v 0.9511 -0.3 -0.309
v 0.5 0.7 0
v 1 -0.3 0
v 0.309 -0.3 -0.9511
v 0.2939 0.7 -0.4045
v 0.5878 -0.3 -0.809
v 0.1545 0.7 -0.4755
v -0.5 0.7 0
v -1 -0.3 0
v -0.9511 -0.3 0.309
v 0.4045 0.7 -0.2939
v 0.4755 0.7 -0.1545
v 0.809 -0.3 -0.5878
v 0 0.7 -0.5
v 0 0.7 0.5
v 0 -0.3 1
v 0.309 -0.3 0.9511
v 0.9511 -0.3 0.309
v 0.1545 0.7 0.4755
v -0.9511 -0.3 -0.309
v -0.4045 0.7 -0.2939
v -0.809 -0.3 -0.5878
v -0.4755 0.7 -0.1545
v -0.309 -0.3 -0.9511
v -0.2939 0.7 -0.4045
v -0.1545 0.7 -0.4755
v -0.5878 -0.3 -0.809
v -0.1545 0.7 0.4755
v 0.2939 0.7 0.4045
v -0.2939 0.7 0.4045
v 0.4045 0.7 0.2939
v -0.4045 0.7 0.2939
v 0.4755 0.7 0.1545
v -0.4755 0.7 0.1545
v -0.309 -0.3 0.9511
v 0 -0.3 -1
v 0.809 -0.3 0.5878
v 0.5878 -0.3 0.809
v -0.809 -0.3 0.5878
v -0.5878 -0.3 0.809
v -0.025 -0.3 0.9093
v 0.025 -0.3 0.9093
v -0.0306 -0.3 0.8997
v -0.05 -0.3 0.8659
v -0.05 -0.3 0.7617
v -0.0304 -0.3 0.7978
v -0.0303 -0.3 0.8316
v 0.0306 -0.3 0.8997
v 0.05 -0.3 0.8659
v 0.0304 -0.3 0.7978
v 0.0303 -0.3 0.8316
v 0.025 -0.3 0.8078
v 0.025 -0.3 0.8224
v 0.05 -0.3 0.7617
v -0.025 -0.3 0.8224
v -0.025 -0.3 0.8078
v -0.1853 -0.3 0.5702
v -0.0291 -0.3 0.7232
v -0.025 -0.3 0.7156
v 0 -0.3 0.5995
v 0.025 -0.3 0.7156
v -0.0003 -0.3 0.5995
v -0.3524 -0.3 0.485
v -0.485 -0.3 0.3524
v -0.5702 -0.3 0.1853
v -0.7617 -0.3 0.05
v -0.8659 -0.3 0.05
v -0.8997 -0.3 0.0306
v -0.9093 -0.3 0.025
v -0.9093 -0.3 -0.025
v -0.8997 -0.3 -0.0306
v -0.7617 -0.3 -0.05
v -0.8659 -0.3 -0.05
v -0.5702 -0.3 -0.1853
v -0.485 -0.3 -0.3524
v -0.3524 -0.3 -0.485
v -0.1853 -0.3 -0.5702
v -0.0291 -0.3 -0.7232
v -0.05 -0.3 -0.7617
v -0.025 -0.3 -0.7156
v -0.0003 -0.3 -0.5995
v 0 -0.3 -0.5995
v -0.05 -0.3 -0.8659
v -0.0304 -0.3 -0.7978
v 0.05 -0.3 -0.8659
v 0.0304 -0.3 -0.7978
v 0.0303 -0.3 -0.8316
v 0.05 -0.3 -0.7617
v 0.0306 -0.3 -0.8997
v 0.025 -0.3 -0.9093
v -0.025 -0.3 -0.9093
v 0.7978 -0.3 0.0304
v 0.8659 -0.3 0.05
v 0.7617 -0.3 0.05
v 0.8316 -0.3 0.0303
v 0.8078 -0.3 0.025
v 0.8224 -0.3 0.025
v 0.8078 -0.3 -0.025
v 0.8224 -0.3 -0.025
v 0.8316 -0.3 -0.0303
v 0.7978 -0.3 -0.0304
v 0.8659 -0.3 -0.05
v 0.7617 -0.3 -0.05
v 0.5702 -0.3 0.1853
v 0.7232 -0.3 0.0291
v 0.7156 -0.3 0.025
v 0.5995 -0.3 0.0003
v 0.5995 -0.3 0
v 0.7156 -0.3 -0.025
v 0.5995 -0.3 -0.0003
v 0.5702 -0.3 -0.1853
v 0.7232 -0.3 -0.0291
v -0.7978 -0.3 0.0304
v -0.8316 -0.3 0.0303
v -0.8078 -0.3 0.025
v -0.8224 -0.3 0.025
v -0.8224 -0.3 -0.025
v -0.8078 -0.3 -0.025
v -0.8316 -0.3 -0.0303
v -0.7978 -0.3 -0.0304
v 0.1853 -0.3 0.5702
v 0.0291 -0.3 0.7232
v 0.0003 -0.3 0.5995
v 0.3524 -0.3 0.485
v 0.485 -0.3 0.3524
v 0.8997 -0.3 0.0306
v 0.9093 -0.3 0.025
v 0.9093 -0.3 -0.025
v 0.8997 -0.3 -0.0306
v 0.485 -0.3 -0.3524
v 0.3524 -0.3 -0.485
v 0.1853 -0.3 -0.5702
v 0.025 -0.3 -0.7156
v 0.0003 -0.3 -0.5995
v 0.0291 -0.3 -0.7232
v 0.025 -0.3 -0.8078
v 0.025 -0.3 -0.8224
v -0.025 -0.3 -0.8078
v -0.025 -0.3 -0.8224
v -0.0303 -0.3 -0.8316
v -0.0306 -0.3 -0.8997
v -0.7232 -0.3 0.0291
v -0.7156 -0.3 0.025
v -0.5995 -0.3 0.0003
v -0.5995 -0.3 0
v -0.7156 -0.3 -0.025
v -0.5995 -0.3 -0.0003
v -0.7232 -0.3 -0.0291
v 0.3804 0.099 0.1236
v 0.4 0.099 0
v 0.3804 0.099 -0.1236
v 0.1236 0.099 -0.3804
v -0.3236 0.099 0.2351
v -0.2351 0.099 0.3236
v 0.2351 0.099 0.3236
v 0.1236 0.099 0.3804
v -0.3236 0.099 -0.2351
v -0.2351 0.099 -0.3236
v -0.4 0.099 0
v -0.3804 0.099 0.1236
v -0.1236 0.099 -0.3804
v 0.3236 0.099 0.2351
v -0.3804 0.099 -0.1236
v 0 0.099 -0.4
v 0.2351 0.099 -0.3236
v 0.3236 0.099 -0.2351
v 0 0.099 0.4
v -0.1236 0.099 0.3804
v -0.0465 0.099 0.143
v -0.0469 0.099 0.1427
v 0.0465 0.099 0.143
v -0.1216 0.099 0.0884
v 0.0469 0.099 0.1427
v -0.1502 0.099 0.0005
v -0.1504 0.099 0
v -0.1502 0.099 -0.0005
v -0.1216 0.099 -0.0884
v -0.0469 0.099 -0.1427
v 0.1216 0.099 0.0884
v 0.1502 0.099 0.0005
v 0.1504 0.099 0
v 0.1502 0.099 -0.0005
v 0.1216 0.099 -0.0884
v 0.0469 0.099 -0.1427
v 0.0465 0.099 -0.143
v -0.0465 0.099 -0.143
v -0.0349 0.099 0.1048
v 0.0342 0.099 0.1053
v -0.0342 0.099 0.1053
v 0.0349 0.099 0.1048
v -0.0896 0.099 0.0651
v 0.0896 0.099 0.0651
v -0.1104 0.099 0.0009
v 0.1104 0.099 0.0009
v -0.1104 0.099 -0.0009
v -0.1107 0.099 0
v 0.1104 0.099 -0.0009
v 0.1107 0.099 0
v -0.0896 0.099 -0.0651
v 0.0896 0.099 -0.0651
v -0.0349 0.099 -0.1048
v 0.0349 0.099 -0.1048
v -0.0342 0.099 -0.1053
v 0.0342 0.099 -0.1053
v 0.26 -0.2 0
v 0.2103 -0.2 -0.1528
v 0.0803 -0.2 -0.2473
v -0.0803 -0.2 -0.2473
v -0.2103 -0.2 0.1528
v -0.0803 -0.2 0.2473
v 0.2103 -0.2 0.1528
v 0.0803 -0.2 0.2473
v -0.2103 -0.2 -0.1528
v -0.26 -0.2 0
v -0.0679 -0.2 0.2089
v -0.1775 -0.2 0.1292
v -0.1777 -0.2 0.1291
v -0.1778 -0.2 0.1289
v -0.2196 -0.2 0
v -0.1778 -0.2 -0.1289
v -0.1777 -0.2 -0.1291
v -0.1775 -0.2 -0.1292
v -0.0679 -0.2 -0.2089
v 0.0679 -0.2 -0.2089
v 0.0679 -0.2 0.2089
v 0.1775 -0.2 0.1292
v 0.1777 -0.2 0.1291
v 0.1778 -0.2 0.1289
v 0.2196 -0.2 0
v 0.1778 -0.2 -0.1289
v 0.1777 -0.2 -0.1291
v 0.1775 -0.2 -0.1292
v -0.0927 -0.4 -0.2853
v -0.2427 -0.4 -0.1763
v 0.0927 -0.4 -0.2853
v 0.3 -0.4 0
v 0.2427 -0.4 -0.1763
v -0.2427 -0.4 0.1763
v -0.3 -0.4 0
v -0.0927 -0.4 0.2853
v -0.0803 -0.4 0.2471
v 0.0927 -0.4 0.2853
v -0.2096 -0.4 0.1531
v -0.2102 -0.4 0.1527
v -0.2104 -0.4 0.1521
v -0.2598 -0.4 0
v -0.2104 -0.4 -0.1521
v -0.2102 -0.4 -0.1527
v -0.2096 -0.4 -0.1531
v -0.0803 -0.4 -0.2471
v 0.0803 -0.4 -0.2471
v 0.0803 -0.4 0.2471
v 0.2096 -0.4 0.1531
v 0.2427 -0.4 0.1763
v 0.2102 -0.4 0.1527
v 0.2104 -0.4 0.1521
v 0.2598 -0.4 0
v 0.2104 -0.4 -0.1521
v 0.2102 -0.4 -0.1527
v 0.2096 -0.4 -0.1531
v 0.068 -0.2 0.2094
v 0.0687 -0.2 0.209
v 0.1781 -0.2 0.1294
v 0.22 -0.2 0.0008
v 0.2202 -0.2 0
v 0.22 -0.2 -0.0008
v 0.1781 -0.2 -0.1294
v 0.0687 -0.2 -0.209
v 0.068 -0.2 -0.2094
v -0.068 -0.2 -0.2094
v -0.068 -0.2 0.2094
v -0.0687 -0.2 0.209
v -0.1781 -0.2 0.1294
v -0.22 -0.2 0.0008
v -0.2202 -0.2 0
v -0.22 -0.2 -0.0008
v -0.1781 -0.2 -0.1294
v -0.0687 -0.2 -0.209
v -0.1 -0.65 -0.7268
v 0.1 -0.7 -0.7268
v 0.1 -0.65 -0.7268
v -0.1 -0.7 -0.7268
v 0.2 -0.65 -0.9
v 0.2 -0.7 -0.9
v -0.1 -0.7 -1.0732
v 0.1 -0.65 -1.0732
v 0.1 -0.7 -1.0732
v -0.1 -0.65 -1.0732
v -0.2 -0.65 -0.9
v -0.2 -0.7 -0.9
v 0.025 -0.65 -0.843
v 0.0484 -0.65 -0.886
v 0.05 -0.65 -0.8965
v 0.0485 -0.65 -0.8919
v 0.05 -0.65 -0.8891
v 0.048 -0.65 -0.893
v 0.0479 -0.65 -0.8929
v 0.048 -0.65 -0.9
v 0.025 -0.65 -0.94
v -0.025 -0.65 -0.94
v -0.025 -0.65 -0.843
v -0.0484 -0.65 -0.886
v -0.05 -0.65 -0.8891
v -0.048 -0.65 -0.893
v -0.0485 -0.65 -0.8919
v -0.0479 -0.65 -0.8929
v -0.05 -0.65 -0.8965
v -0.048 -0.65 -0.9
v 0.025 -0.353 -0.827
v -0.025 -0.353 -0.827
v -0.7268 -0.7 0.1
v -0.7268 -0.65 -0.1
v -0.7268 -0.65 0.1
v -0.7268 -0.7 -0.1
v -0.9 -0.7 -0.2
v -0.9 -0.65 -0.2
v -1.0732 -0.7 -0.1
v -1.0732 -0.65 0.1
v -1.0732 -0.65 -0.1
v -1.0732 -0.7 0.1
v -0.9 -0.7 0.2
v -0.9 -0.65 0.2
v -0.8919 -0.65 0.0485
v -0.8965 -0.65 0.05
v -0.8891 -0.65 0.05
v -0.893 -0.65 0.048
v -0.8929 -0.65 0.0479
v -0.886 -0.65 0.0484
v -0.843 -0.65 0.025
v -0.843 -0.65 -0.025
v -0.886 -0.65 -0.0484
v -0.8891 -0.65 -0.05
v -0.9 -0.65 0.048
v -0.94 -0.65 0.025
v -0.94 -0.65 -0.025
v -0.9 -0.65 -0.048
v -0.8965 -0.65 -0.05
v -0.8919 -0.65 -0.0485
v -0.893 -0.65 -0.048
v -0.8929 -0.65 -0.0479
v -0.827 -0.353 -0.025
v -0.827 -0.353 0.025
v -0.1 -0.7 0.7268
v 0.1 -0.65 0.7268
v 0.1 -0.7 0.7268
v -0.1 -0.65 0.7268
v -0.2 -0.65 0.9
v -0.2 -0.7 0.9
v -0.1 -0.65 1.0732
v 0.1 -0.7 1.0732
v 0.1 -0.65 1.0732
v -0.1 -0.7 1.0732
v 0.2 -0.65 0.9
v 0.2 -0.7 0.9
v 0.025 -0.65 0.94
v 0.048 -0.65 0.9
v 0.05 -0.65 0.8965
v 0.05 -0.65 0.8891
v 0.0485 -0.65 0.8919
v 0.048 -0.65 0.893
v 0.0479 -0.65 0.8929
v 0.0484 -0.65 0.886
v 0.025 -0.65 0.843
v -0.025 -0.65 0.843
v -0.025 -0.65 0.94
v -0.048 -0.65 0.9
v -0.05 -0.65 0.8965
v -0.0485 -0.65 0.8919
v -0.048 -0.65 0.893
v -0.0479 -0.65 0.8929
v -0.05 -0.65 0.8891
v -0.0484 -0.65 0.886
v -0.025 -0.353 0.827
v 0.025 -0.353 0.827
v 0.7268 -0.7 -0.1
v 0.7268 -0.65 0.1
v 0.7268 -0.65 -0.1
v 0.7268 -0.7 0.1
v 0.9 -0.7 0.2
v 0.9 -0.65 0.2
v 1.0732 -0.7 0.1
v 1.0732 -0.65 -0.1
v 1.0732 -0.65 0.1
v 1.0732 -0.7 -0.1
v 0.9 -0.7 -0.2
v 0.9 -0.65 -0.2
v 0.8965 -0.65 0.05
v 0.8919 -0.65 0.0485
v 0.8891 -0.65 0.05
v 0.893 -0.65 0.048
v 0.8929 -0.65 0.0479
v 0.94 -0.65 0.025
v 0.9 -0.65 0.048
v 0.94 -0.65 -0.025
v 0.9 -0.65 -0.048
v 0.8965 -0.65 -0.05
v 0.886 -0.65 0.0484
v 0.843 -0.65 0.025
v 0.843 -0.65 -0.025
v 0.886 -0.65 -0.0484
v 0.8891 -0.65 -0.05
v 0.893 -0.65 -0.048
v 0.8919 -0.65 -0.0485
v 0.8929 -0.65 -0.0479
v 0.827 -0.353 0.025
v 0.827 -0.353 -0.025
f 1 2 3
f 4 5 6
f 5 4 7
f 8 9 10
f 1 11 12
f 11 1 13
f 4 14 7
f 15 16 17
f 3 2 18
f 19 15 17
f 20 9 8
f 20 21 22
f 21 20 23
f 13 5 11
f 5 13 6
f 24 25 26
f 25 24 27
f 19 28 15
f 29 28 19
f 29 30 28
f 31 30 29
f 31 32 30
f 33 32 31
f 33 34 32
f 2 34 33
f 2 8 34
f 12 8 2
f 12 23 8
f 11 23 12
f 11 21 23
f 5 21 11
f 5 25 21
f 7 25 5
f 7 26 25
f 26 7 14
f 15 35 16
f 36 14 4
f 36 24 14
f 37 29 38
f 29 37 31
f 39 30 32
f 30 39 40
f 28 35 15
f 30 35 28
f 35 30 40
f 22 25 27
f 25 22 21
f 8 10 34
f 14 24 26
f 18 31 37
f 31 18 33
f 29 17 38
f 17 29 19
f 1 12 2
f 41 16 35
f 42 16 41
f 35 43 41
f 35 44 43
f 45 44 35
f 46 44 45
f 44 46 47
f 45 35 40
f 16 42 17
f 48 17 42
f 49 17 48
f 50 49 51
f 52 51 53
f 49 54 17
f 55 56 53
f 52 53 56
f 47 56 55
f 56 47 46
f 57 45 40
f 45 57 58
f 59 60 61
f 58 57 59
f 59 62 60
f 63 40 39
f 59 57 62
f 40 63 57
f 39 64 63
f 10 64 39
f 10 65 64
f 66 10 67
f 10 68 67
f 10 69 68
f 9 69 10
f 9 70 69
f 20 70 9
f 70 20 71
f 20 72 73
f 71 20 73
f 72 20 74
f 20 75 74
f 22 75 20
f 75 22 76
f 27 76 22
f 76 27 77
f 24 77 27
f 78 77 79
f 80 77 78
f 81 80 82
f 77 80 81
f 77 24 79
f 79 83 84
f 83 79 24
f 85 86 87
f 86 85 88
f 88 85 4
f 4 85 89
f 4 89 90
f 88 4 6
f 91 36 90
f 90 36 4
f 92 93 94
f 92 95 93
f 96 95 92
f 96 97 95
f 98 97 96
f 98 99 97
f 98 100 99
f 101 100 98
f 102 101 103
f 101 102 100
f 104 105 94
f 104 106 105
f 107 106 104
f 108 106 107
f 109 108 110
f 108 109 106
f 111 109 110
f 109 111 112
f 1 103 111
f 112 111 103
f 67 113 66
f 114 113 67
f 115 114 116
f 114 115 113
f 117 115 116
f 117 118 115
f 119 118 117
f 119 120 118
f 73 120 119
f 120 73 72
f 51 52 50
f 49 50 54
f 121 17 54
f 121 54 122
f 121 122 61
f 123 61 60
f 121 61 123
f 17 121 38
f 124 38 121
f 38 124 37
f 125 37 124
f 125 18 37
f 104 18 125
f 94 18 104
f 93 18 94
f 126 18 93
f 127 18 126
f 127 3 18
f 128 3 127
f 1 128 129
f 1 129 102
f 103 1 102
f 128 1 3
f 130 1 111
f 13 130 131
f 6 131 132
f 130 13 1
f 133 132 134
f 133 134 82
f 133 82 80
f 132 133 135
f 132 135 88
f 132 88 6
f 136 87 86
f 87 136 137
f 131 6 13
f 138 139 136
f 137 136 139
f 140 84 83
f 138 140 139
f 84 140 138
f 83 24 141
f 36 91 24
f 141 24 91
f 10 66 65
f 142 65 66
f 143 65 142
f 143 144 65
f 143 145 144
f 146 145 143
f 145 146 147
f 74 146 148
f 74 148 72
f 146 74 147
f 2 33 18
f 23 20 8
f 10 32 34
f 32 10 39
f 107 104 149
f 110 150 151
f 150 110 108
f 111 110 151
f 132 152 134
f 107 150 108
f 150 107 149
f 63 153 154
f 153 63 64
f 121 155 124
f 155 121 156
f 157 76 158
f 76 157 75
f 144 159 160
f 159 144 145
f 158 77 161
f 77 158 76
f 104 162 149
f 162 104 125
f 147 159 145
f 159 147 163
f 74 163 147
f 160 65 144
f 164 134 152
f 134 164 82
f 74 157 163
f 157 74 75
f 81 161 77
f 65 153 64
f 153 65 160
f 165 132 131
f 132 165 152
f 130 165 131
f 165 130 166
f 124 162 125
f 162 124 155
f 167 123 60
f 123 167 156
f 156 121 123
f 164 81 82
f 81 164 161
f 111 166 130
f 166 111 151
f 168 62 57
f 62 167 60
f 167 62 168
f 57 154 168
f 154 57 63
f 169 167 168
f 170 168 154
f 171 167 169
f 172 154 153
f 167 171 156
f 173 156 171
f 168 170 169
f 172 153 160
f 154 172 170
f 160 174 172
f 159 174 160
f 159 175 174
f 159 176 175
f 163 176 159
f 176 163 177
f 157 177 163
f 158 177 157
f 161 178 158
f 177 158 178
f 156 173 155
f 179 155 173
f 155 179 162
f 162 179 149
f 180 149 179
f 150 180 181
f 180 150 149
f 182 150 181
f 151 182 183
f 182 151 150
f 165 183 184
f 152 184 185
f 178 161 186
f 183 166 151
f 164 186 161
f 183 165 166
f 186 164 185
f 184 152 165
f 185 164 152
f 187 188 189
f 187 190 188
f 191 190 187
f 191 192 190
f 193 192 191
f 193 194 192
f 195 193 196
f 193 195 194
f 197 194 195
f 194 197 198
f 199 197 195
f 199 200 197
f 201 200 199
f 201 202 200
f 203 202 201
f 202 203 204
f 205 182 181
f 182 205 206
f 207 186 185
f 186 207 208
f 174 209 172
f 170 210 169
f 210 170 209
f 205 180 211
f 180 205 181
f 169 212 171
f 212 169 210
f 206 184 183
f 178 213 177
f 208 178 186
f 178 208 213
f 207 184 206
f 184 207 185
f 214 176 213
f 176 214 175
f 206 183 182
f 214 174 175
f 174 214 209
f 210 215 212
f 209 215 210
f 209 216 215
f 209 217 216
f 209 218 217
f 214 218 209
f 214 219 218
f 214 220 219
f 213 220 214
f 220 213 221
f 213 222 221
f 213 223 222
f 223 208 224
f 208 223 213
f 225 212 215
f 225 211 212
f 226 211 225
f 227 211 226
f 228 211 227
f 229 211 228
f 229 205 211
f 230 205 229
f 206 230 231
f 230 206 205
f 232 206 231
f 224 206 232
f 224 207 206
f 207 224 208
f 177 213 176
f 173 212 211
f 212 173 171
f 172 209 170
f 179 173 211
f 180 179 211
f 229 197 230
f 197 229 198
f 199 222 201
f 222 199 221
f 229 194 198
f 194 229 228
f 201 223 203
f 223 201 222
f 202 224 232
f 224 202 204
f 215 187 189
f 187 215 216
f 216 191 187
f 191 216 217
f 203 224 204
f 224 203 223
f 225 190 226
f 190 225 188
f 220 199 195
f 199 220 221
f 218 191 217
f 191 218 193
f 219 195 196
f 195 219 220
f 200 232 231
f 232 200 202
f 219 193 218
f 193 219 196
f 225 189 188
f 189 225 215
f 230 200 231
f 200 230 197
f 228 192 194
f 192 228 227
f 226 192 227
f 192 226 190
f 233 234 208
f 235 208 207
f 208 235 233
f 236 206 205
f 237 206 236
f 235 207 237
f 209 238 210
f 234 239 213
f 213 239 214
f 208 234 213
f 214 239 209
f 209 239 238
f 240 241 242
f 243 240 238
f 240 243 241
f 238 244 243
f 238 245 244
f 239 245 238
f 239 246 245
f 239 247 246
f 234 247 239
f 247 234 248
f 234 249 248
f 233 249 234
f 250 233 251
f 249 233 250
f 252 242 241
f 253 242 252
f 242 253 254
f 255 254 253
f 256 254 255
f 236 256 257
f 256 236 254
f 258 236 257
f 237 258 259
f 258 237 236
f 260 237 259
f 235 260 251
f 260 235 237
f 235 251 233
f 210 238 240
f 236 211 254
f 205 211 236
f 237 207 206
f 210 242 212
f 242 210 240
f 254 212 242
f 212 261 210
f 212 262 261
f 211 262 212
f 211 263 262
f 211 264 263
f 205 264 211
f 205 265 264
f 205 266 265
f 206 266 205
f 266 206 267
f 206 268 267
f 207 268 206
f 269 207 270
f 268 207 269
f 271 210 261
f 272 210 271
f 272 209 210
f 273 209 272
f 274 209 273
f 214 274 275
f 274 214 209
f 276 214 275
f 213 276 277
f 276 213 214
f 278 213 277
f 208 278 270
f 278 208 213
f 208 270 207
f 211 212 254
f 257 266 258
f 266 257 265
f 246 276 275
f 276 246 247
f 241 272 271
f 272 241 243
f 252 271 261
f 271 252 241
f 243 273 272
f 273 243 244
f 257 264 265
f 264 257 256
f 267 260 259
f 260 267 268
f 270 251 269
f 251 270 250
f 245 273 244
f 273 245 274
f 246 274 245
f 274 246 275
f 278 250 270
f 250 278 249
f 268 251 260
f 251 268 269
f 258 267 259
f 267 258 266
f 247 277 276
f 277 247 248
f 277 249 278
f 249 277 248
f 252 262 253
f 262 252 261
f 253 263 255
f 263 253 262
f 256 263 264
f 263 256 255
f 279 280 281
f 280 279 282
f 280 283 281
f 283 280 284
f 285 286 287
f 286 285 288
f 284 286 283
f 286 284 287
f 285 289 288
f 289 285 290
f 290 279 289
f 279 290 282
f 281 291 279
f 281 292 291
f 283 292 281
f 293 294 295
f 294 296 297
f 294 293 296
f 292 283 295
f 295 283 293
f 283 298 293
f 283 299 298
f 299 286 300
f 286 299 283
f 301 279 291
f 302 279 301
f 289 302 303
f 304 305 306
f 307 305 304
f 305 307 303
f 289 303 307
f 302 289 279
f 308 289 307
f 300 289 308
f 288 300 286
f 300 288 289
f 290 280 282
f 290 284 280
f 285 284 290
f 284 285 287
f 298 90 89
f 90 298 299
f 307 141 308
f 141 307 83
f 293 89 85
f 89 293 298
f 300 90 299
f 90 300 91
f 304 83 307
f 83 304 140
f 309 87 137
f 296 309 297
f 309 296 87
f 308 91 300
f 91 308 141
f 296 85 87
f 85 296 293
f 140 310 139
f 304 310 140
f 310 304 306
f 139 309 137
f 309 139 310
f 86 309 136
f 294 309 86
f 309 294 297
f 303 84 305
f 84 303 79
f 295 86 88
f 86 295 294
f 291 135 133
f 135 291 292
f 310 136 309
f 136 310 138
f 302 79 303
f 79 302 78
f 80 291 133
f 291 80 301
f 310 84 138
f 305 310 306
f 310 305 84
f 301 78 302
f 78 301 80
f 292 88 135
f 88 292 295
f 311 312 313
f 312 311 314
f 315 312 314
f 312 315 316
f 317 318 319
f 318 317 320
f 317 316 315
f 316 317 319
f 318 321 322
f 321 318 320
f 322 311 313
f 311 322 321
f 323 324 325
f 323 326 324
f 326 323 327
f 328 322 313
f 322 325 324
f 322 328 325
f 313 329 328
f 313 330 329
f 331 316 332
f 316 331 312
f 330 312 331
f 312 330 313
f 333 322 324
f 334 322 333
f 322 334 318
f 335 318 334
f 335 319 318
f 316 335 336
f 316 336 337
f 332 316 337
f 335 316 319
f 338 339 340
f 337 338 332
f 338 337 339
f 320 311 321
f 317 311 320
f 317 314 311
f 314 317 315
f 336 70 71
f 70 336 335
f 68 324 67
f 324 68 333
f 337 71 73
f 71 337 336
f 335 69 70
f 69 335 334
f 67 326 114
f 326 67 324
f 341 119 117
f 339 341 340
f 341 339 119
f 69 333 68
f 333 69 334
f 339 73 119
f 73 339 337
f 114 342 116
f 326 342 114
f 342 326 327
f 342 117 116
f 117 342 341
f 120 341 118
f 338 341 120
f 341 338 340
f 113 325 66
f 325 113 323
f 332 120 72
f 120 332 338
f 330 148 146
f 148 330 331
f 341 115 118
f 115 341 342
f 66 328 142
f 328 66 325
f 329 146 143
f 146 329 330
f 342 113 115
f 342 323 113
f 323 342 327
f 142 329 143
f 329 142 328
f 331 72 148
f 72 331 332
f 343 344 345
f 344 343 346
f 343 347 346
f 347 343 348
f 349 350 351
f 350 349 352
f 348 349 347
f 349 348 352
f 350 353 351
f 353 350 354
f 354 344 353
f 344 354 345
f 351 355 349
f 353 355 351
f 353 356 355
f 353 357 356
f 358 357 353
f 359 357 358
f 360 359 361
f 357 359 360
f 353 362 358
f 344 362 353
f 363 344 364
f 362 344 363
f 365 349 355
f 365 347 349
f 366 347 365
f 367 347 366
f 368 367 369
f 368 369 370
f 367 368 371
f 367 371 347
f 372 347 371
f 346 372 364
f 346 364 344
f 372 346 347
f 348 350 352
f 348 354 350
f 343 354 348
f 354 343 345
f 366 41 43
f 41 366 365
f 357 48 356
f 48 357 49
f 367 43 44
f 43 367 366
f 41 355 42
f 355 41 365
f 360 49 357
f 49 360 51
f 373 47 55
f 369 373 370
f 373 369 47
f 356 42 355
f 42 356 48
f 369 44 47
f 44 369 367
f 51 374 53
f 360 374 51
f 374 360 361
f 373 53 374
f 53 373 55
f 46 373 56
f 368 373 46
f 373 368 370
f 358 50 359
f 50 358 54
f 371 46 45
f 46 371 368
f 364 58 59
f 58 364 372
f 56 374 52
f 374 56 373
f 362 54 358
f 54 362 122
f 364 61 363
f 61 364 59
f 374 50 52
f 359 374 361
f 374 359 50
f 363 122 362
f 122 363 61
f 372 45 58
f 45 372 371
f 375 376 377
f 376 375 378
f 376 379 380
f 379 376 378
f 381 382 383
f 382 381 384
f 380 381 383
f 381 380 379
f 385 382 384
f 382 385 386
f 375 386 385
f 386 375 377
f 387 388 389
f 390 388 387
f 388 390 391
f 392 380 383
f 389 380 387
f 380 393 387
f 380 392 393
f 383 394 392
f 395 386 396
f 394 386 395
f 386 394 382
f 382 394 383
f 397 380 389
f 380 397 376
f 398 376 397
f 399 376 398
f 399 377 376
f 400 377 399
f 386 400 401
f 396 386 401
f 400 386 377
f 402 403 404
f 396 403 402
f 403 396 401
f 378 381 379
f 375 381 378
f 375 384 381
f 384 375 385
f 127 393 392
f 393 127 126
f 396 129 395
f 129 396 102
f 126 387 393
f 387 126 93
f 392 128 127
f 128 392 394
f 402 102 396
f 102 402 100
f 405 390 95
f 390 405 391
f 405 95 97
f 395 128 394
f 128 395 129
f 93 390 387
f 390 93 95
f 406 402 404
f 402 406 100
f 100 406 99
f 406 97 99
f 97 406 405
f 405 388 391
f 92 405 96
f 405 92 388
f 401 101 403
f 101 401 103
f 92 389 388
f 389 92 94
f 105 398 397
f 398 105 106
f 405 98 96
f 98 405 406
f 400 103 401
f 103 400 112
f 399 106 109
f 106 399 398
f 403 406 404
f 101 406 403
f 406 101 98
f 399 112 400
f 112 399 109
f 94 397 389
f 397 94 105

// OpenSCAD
$fn=20;
tol=0.001;
num_of_legs=4;

// Main geometry
rotate([-90, 0, 0]) translate([0, 0, -0.3]) {
    body();
    translate([0, 0, -0.1]) engine_nozzle();
    for (i = [0 : 1 : num_of_legs-1]) {
        rotate([0, 0, 360 * i / num_of_legs]) translate([0, 0.9, -0.4]) leg();
    }
}

module body() {
    bottom = 1.0;
    top = 0.5;
    
    difference() {
        cylinder(r1=bottom, r2=top, h=1.0);
        translate([0, 0, -tol]) {
            cylinder(r1=bottom*0.6, r2=bottom*0.4, h=0.4);
        }
    }
}

module engine_nozzle() {
    $fn = 10;
    bottom = 0.3;
    middle = 0.26;
    top = 0.15;
    t = 0.04;
    h1 = 0.3;
    h2 = 0.2;
    
    translate([0, 0, h2]) difference() {
        cylinder(r1=middle, r2=top, h=h1);
        translate([0, 0, -tol]) cylinder(r1=middle-t, r2=top-t, h=h1+2*tol);
    }
    
    difference() {
        cylinder(r1=bottom, r2=middle, h=h2);
        translate([0, 0, -tol]) cylinder(r1=bottom-t, r2=middle-t, h=h2+2*tol);
    }
}

module leg() {
    $fn = 6;
    cylinder(r=0.2, h=0.05);
    translate([0, 0, 0.01]) rotate([5, 0, 0]) cylinder(d=0.1, h=0.5);
    translate([0, 0, 0.02]) rotate([20, 0, 0]) cylinder(d=0.1, h=0.5);
}
